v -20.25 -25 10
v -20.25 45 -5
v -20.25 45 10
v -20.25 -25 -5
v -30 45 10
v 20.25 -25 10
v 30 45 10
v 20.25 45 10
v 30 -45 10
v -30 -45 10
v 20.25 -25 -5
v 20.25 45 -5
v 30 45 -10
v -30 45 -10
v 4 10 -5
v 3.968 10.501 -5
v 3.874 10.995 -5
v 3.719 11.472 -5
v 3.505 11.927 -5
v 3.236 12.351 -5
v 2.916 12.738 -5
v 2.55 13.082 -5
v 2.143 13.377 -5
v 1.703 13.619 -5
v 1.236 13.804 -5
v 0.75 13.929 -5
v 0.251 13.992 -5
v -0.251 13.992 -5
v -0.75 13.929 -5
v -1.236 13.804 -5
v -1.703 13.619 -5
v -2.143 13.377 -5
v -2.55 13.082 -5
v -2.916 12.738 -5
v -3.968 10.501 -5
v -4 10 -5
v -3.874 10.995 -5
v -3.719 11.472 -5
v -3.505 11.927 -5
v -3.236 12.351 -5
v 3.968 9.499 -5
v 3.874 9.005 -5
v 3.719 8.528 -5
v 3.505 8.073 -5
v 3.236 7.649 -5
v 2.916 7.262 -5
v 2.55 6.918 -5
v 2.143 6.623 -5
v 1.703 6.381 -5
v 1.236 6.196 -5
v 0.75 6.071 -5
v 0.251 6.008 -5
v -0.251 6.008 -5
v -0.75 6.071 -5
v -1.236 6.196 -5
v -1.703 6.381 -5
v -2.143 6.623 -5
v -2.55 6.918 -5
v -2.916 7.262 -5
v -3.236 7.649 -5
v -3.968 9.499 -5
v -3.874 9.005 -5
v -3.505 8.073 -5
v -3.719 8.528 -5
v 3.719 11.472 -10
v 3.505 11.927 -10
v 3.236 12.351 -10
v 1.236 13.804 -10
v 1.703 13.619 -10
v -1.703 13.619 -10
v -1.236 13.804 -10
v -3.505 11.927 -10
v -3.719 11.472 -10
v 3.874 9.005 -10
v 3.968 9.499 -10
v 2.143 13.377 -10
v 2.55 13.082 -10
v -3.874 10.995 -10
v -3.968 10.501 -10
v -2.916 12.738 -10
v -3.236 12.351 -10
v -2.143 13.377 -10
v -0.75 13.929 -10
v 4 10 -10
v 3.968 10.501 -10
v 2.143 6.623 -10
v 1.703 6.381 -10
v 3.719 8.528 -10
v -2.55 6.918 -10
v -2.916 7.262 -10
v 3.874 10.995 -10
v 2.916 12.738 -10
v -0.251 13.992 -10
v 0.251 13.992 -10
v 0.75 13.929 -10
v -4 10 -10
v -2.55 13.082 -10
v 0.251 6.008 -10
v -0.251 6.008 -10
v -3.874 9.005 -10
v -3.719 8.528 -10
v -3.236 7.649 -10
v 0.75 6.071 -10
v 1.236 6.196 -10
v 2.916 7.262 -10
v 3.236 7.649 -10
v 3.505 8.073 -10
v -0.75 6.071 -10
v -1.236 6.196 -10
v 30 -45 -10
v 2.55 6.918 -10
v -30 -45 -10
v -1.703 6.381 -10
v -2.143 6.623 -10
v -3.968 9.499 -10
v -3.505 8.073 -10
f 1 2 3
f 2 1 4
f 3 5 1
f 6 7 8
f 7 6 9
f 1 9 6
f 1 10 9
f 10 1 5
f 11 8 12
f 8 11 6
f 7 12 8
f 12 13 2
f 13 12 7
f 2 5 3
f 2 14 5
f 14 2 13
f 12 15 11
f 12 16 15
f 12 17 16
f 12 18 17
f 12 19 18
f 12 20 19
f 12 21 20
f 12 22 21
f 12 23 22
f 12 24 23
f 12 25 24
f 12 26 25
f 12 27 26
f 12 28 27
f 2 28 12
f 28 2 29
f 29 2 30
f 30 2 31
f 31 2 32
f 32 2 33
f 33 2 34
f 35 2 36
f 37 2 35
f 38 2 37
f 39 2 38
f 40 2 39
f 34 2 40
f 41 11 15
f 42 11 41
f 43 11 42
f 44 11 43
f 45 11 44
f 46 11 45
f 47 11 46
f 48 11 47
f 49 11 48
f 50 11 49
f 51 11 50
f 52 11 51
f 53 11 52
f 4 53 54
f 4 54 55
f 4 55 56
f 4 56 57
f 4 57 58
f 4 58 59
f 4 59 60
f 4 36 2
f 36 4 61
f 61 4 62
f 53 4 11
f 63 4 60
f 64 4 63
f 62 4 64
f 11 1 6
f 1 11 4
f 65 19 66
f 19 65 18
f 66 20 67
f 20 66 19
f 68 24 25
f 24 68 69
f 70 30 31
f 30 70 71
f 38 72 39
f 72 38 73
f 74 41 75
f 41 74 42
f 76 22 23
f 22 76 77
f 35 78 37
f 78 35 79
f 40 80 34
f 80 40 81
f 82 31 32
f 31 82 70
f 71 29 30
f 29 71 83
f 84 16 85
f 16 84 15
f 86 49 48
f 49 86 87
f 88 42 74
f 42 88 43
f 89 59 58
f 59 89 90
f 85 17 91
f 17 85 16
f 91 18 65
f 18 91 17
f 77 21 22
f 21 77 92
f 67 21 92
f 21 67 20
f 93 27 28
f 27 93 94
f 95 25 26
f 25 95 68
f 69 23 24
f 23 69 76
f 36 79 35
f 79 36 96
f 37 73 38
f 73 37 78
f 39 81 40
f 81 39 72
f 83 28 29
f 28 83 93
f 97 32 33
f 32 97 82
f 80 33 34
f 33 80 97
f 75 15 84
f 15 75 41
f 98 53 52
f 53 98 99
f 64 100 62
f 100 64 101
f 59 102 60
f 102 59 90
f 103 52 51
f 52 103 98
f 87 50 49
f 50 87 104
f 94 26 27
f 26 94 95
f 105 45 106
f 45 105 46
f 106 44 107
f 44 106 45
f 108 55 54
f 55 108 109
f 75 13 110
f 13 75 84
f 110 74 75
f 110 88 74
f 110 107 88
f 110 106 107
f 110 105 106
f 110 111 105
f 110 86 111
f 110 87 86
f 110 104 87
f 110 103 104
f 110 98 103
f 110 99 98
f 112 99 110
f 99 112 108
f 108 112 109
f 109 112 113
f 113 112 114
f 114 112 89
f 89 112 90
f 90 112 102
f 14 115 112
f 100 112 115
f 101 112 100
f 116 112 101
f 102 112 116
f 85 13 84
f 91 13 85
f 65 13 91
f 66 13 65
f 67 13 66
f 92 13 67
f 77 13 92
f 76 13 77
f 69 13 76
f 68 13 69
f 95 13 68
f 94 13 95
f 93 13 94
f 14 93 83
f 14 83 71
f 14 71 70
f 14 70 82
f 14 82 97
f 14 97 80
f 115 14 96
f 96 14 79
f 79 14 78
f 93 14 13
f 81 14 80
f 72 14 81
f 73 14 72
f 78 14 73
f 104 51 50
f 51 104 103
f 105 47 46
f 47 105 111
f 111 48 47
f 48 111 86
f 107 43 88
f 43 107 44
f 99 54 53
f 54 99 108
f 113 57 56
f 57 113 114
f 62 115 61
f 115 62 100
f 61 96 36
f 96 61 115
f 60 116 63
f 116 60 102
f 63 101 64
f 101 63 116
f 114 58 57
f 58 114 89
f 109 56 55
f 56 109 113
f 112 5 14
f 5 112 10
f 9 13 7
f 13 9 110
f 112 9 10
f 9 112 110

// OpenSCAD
//Bohrlehre
difference() {
    cube([60,90,20],center=true);
    translate([0,10,2.5]) {
        cube([40.5,70,15],center=true);
        cylinder(r=4,$fn=50,center=true,h=25);
    }
}
